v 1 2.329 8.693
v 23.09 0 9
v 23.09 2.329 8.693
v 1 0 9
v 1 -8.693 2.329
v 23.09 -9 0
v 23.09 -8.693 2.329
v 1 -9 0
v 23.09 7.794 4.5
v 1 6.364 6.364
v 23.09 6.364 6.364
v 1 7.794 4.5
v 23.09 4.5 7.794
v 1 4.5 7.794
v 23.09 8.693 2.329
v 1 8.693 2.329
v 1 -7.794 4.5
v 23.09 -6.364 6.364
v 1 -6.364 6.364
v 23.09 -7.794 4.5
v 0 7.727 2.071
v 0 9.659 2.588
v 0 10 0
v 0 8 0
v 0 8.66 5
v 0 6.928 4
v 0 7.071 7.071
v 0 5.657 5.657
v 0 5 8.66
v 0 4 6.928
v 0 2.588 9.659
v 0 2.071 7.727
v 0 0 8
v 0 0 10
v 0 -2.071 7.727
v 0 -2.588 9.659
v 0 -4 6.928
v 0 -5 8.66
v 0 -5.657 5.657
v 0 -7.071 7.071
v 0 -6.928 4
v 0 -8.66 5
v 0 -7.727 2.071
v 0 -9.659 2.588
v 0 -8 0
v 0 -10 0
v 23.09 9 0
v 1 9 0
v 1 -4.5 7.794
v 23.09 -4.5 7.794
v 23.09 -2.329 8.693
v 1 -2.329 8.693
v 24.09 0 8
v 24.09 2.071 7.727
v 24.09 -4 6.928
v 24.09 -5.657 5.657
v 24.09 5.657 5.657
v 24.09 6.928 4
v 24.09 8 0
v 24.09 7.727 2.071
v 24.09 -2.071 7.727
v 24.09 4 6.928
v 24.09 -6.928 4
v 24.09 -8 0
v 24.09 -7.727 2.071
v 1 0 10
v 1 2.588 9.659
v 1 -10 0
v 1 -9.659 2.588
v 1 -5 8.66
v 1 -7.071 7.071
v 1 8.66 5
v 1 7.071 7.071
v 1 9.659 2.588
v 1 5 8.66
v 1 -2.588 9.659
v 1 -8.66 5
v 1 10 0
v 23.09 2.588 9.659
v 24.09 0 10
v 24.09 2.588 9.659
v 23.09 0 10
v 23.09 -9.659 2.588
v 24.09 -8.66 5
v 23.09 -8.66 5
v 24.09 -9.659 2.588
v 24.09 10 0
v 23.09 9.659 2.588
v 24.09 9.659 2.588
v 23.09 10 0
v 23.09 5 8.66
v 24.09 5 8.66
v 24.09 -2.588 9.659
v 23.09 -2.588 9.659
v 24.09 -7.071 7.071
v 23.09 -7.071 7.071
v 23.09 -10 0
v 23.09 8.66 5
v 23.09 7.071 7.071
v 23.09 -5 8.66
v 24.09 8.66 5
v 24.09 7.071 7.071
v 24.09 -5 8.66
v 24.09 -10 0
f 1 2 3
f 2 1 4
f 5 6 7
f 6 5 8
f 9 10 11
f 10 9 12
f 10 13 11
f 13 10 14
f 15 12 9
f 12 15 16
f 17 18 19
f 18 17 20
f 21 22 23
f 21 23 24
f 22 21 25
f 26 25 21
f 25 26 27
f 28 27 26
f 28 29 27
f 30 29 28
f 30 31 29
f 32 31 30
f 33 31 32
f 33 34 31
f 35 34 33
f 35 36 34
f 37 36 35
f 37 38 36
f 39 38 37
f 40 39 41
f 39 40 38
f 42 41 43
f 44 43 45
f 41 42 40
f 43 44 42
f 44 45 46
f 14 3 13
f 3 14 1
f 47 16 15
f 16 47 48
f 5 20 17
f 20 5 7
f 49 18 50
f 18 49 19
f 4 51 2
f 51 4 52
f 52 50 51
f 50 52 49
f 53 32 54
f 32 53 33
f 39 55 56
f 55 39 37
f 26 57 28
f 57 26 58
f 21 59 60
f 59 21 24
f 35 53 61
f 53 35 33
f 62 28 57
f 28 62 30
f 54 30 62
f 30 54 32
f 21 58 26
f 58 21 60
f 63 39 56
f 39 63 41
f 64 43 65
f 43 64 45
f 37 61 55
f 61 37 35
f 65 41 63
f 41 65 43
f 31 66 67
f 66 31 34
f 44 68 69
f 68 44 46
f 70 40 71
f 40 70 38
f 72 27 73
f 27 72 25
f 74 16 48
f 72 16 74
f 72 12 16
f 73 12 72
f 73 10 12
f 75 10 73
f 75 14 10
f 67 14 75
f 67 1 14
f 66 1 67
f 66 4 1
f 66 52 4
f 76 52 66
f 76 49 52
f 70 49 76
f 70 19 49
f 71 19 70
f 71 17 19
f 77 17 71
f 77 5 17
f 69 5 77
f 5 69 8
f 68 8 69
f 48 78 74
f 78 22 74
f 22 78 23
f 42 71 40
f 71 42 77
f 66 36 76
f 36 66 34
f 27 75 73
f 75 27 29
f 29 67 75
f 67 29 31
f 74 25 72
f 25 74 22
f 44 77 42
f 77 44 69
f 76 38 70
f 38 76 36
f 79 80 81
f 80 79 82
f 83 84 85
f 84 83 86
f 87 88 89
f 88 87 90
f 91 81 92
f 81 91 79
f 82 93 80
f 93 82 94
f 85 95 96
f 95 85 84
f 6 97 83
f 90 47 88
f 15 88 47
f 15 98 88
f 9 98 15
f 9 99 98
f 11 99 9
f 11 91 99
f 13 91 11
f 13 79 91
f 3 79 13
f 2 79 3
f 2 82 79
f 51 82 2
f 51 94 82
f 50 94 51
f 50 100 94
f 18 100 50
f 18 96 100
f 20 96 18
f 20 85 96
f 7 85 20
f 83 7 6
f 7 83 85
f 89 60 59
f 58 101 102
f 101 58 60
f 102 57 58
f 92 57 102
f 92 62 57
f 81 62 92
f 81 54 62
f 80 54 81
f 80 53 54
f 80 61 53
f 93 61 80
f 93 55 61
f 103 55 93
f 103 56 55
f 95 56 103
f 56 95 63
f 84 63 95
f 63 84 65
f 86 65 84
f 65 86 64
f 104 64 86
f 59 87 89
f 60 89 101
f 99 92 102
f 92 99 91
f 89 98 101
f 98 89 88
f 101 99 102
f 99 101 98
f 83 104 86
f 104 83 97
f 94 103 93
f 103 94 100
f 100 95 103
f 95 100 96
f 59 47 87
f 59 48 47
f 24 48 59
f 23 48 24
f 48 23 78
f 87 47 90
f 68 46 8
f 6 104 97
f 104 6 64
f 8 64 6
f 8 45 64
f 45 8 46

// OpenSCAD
// file: ../build_environments.scad
// build_environments.scad: modules to build level sections
//

module pool(diameter=10.0, wall_height=2.0, step_width=3.0, connections=[])
{
    difference() {
        union() {
        difference() {
            cylinder(h=0.5,r1=diameter+step_width,r2=diameter+step_width,$fn=48);
            translate([0,0,-0.1])
                cylinder(h=0.7,r1=diameter,r2=diameter,$fn=48);
        }
        difference() {
            cylinder(h=wall_height,r1=diameter+step_width+1.0,r2=diameter+step_width+1.0,$fn=48);
            translate([0,0,-0.1])
                cylinder(h=wall_height+0.2,r1=diameter+step_width,r2=diameter+step_width,$fn=48);
        }
        }
    
        for (c = connections)
        {
            rotate([0,90,0]) {
                angle = atan2(c[1],c[0]);
                rotate([-angle,0,0]) {
                    cylinder(h=diameter+5.0,r1=c[2],r2=c[2],$fn=48);
                }
            }
        }
    }
}

module straight(length=10.0, width=2.0, dy1=0.0, dy2=0.0, dz=0.0)
{
    dims = [0, 0, 0, 0, 0, (dz/length)];
    matrix = [
        [ 1, dims[0], dims[1], 0 ],
        [ dims[2], 1, dims[4], 0 ],
        [ dims[5], dims[3], 1, 0 ],
        [ 0, 0, 0, 1 ]
    ];
    multmatrix(matrix)
    difference() {
        translate([dy1,0,0])
        union() {
            rotate([0,90,0]) {
                difference() {
                    cylinder(h=(length-dy1-dy2),r1=width+1.0,r2=width+1.0,$fn=24);
                    translate([0,0,-0.1])
                        cylinder(h=(length-dy1-dy2+0.2),r1=width,r2=width,$fn=24);
                }
                difference() {
                    cylinder(h=1.0,r1=width+2.0,r2=width+2.0,$fn=24);
                    translate([0,0,-0.1])
                        cylinder(h=1.2,r1=width,r2=width,$fn=24);
                }
                translate([0,0,(length-dy1-dy2)-1.0]) {
                    difference() {
                        cylinder(h=1.0,r1=width+2.0,r2=width+2.0,$fn=24);
                        translate([0,0,-0.1])
                            cylinder(h=1.2,r1=width,r2=width,$fn=24);
                    }
                }
            }
        }
        translate([0,0,-(2*width+4.0)/2])
            cube([3*length,3*length,2*width+4.0],center=true);
    }
}

module curve(p0=[0,0], center=[0,0], dir=1, angle=0.0, width=2.0)
{
    radius = sqrt((p0[0]-center[0])*(p0[0]-center[0]) + (p0[1]-center[1])*(p0[1]-center[1]));
    if (dir == 0) {
        difference() {
            rotate([0,0,-90])
            difference() {
                rotate_extrude(angle = angle, convexity = 10, $fn=32)
                    translate([radius, 0, 0])
                        circle(r = width+1.0,$fn=24);
                rotate([0,0,-1.0])
                    rotate_extrude(angle = angle+2.0, convexity = 10, $fn=32)
                        translate([radius, 0, 0])
                            circle(r = width,$fn=24);
            }
            translate([0,0,-(2*width+4.0)/2])
                cube([5*radius,5*radius,2*width+4.0],center=true);
        }
    }
    else {
        difference() {
            rotate([0,0,90])
            difference() {
                rotate_extrude(angle = -angle, convexity = 10, $fn=32)
                    translate([radius, 0, 0])
                        circle(r = width+1.0,$fn=24);
                rotate([0,0,1.0])
                    rotate_extrude(angle = -angle-2.0, convexity = 10, $fn=32)
                        translate([radius, 0, 0])
                            circle(r = width,$fn=24);
            }
            translate([0,0,-(2*width+4.0)/2])
                cube([5*radius,5*radius,2*width+4.0],center=true);
        }
    }

}

// test pool
//pool(diameter=12.0000, wall_height=3.0000, step_width=3.0000, connections=[[0.0000,-26.0000,2.0000], [23.6074,0.0000,2.0000]]);

// test straight, slope
//straight(length=26.0000, width=2.0000, dy1=11.8322, dy2=6.7082, dz=0.0000);
//straight(length=29.1549, width=12.0000, dy1=0.0000, dy2=0.0000, dz=-15.0000);

// test curve
//curve(p0=[23.6074, 0.0000], center=[23.6074, 5.0000], dir=0, angle=60.1011, width=2.0000);
//curve(p0=[33.6426, 12.4219], center=[37.9771, 9.9295], dir=1, angle=120.4627, width=2.0000);
// main file
use <../build_environments.scad>;
straight(length=33.0338, width=8.0000, dy1=0.0000, dy2=8.9443, dz=0.0000);
